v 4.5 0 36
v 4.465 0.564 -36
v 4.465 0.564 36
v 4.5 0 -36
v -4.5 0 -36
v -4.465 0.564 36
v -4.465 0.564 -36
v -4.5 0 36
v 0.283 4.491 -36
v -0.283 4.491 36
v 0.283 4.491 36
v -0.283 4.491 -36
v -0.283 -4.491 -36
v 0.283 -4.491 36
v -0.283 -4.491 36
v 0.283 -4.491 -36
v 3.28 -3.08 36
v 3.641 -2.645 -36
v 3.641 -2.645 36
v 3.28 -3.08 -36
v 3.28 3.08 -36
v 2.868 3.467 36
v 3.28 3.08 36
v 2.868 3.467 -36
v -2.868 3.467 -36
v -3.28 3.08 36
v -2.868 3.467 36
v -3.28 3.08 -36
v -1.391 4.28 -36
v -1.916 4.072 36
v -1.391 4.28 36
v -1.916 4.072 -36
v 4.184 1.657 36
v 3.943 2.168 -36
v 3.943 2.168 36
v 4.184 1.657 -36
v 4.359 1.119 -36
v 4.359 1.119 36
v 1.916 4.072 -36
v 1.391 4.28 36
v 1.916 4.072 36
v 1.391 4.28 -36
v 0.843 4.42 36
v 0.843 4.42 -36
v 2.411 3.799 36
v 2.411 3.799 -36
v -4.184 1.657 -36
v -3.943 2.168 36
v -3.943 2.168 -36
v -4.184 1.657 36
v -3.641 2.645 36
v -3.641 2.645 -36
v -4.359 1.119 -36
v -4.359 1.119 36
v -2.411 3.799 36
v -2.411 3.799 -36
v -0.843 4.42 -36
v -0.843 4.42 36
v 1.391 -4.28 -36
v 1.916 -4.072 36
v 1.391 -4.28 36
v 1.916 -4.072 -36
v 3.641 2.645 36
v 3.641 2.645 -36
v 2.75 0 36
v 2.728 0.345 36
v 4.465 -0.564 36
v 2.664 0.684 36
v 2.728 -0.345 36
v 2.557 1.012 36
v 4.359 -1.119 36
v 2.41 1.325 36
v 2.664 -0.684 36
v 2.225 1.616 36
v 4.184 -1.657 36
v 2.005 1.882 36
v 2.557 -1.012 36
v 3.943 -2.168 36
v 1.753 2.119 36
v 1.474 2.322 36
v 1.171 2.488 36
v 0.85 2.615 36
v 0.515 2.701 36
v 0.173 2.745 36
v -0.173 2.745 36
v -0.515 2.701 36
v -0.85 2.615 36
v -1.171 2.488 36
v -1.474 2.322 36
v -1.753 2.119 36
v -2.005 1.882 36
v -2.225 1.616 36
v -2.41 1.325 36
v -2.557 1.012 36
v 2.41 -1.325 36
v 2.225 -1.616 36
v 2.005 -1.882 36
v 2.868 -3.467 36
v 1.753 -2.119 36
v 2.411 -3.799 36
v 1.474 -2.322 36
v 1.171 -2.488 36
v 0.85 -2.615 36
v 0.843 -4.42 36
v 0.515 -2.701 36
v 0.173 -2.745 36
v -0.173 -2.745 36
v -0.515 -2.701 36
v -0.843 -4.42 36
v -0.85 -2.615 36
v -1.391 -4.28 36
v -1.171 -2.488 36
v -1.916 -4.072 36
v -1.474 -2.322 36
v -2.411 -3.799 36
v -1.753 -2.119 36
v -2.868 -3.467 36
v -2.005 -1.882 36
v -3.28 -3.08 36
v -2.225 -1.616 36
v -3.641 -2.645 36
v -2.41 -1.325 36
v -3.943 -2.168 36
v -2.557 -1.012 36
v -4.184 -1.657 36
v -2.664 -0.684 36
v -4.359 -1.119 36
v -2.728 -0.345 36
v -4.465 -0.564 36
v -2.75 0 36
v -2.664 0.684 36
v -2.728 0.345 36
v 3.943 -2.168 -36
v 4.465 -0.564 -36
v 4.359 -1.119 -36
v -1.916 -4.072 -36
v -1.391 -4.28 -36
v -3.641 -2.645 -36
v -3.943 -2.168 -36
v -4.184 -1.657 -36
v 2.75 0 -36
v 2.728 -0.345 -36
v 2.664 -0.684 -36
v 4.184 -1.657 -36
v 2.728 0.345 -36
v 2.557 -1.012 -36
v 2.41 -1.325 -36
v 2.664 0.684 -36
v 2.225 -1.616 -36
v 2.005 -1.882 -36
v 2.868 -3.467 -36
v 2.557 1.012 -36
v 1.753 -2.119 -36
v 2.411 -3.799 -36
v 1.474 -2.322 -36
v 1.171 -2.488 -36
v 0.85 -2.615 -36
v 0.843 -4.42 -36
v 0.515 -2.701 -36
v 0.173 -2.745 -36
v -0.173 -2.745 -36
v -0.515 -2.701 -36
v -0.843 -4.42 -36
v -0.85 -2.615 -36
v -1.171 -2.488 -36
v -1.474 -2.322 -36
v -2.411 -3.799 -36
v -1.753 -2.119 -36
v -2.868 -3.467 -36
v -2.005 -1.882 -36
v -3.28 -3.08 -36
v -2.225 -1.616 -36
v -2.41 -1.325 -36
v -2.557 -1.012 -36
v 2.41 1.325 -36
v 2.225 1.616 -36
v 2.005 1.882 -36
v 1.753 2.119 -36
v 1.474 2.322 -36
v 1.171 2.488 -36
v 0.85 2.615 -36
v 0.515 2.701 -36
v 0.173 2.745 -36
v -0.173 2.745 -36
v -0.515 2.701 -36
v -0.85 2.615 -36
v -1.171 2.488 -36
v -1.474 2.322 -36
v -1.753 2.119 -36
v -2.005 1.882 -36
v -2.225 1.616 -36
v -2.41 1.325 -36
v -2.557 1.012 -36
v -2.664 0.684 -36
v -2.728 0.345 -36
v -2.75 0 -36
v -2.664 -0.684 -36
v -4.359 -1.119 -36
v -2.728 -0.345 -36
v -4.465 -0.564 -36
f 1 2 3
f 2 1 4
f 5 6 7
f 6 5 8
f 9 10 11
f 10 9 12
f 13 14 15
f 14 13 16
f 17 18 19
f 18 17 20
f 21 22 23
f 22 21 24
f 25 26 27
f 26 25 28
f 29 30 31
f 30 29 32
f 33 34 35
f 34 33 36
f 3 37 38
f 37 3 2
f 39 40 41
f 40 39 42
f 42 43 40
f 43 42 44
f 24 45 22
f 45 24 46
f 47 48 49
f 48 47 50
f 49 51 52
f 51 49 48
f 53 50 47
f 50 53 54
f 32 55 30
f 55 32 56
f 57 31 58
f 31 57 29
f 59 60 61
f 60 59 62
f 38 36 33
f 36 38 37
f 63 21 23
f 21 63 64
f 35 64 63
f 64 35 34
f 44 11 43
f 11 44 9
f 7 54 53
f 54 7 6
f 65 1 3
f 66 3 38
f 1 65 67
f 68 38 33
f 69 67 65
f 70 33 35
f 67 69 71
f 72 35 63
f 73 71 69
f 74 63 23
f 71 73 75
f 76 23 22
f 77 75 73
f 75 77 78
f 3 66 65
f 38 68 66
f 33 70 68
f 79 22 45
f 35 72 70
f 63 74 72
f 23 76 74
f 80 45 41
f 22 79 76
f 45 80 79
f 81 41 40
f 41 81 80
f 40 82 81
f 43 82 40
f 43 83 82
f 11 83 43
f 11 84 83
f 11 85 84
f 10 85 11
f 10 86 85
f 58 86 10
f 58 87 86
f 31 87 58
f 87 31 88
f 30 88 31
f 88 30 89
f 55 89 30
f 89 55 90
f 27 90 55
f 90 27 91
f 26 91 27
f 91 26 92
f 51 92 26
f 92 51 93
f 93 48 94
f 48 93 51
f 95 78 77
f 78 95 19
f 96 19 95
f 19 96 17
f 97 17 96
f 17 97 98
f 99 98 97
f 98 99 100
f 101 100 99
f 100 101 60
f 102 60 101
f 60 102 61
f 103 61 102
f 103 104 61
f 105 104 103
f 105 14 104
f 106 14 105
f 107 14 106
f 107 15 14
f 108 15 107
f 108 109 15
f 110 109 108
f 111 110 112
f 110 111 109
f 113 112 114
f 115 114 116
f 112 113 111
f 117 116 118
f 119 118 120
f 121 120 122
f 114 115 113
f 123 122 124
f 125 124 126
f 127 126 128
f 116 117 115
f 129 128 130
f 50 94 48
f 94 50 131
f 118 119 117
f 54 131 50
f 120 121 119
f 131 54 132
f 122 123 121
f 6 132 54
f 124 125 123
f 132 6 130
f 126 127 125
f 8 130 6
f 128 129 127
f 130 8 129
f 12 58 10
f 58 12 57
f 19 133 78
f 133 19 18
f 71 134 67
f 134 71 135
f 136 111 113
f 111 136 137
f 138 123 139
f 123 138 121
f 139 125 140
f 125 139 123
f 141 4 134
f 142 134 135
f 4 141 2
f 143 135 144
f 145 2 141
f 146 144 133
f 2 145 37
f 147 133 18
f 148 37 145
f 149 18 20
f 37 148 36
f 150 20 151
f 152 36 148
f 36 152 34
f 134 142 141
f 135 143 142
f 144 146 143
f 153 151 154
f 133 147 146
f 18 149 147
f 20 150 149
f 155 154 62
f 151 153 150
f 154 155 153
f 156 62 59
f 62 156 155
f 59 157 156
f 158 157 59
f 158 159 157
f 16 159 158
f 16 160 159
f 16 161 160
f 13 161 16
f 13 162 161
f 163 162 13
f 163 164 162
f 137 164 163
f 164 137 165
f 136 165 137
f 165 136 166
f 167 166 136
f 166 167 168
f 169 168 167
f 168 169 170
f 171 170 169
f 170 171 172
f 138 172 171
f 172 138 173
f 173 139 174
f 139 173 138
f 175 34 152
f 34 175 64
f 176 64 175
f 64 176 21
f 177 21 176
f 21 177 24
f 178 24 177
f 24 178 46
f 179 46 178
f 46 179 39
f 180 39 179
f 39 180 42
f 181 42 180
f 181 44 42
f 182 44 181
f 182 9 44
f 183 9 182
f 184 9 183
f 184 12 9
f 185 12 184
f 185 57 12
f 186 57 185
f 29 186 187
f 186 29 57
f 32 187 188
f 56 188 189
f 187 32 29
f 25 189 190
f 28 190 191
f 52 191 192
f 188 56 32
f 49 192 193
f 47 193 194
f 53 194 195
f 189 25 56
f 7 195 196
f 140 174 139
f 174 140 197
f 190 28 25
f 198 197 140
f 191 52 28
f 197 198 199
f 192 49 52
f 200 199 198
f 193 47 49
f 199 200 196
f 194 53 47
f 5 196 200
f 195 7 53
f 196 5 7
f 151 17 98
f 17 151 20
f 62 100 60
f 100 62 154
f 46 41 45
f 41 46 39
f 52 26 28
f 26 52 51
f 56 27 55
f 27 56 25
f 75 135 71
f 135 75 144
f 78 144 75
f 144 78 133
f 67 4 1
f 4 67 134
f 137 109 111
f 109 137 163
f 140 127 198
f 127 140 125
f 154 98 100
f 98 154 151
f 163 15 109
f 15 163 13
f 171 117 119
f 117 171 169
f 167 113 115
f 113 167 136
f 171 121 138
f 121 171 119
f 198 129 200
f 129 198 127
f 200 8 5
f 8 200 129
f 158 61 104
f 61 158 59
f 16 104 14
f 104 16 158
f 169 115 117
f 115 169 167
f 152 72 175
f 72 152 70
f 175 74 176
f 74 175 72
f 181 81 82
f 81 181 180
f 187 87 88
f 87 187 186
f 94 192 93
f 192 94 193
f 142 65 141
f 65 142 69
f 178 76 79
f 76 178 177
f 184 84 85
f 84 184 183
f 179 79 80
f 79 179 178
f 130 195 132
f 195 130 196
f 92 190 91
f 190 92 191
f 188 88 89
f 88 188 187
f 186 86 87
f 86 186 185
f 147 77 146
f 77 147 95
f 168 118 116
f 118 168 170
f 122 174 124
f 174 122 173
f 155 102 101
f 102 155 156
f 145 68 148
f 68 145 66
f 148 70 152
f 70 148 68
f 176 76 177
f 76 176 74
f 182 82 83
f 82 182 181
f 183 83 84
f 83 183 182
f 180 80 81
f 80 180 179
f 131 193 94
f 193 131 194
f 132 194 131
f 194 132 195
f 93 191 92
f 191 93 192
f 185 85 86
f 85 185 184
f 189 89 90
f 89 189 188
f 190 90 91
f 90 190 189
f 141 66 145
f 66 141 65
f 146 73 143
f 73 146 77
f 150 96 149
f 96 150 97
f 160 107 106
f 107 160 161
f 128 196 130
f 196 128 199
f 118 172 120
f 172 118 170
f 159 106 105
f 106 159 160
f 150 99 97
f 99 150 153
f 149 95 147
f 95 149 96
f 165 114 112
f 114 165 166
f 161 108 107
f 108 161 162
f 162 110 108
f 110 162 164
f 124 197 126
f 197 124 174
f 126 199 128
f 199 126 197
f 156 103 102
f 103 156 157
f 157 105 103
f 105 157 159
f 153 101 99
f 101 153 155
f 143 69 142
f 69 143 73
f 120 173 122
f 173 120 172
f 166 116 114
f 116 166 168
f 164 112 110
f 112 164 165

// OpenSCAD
$fn = 50;


difference() {
	union() {
		translate(v = [0, 0, -36.0000000000]) {
			cylinder(h = 72, r = 4.5000000000);
		}
	}
	union() {
		translate(v = [0, 0, -100.0000000000]) {
			cylinder(h = 200, r = 2.7500000000);
		}
	}
}
